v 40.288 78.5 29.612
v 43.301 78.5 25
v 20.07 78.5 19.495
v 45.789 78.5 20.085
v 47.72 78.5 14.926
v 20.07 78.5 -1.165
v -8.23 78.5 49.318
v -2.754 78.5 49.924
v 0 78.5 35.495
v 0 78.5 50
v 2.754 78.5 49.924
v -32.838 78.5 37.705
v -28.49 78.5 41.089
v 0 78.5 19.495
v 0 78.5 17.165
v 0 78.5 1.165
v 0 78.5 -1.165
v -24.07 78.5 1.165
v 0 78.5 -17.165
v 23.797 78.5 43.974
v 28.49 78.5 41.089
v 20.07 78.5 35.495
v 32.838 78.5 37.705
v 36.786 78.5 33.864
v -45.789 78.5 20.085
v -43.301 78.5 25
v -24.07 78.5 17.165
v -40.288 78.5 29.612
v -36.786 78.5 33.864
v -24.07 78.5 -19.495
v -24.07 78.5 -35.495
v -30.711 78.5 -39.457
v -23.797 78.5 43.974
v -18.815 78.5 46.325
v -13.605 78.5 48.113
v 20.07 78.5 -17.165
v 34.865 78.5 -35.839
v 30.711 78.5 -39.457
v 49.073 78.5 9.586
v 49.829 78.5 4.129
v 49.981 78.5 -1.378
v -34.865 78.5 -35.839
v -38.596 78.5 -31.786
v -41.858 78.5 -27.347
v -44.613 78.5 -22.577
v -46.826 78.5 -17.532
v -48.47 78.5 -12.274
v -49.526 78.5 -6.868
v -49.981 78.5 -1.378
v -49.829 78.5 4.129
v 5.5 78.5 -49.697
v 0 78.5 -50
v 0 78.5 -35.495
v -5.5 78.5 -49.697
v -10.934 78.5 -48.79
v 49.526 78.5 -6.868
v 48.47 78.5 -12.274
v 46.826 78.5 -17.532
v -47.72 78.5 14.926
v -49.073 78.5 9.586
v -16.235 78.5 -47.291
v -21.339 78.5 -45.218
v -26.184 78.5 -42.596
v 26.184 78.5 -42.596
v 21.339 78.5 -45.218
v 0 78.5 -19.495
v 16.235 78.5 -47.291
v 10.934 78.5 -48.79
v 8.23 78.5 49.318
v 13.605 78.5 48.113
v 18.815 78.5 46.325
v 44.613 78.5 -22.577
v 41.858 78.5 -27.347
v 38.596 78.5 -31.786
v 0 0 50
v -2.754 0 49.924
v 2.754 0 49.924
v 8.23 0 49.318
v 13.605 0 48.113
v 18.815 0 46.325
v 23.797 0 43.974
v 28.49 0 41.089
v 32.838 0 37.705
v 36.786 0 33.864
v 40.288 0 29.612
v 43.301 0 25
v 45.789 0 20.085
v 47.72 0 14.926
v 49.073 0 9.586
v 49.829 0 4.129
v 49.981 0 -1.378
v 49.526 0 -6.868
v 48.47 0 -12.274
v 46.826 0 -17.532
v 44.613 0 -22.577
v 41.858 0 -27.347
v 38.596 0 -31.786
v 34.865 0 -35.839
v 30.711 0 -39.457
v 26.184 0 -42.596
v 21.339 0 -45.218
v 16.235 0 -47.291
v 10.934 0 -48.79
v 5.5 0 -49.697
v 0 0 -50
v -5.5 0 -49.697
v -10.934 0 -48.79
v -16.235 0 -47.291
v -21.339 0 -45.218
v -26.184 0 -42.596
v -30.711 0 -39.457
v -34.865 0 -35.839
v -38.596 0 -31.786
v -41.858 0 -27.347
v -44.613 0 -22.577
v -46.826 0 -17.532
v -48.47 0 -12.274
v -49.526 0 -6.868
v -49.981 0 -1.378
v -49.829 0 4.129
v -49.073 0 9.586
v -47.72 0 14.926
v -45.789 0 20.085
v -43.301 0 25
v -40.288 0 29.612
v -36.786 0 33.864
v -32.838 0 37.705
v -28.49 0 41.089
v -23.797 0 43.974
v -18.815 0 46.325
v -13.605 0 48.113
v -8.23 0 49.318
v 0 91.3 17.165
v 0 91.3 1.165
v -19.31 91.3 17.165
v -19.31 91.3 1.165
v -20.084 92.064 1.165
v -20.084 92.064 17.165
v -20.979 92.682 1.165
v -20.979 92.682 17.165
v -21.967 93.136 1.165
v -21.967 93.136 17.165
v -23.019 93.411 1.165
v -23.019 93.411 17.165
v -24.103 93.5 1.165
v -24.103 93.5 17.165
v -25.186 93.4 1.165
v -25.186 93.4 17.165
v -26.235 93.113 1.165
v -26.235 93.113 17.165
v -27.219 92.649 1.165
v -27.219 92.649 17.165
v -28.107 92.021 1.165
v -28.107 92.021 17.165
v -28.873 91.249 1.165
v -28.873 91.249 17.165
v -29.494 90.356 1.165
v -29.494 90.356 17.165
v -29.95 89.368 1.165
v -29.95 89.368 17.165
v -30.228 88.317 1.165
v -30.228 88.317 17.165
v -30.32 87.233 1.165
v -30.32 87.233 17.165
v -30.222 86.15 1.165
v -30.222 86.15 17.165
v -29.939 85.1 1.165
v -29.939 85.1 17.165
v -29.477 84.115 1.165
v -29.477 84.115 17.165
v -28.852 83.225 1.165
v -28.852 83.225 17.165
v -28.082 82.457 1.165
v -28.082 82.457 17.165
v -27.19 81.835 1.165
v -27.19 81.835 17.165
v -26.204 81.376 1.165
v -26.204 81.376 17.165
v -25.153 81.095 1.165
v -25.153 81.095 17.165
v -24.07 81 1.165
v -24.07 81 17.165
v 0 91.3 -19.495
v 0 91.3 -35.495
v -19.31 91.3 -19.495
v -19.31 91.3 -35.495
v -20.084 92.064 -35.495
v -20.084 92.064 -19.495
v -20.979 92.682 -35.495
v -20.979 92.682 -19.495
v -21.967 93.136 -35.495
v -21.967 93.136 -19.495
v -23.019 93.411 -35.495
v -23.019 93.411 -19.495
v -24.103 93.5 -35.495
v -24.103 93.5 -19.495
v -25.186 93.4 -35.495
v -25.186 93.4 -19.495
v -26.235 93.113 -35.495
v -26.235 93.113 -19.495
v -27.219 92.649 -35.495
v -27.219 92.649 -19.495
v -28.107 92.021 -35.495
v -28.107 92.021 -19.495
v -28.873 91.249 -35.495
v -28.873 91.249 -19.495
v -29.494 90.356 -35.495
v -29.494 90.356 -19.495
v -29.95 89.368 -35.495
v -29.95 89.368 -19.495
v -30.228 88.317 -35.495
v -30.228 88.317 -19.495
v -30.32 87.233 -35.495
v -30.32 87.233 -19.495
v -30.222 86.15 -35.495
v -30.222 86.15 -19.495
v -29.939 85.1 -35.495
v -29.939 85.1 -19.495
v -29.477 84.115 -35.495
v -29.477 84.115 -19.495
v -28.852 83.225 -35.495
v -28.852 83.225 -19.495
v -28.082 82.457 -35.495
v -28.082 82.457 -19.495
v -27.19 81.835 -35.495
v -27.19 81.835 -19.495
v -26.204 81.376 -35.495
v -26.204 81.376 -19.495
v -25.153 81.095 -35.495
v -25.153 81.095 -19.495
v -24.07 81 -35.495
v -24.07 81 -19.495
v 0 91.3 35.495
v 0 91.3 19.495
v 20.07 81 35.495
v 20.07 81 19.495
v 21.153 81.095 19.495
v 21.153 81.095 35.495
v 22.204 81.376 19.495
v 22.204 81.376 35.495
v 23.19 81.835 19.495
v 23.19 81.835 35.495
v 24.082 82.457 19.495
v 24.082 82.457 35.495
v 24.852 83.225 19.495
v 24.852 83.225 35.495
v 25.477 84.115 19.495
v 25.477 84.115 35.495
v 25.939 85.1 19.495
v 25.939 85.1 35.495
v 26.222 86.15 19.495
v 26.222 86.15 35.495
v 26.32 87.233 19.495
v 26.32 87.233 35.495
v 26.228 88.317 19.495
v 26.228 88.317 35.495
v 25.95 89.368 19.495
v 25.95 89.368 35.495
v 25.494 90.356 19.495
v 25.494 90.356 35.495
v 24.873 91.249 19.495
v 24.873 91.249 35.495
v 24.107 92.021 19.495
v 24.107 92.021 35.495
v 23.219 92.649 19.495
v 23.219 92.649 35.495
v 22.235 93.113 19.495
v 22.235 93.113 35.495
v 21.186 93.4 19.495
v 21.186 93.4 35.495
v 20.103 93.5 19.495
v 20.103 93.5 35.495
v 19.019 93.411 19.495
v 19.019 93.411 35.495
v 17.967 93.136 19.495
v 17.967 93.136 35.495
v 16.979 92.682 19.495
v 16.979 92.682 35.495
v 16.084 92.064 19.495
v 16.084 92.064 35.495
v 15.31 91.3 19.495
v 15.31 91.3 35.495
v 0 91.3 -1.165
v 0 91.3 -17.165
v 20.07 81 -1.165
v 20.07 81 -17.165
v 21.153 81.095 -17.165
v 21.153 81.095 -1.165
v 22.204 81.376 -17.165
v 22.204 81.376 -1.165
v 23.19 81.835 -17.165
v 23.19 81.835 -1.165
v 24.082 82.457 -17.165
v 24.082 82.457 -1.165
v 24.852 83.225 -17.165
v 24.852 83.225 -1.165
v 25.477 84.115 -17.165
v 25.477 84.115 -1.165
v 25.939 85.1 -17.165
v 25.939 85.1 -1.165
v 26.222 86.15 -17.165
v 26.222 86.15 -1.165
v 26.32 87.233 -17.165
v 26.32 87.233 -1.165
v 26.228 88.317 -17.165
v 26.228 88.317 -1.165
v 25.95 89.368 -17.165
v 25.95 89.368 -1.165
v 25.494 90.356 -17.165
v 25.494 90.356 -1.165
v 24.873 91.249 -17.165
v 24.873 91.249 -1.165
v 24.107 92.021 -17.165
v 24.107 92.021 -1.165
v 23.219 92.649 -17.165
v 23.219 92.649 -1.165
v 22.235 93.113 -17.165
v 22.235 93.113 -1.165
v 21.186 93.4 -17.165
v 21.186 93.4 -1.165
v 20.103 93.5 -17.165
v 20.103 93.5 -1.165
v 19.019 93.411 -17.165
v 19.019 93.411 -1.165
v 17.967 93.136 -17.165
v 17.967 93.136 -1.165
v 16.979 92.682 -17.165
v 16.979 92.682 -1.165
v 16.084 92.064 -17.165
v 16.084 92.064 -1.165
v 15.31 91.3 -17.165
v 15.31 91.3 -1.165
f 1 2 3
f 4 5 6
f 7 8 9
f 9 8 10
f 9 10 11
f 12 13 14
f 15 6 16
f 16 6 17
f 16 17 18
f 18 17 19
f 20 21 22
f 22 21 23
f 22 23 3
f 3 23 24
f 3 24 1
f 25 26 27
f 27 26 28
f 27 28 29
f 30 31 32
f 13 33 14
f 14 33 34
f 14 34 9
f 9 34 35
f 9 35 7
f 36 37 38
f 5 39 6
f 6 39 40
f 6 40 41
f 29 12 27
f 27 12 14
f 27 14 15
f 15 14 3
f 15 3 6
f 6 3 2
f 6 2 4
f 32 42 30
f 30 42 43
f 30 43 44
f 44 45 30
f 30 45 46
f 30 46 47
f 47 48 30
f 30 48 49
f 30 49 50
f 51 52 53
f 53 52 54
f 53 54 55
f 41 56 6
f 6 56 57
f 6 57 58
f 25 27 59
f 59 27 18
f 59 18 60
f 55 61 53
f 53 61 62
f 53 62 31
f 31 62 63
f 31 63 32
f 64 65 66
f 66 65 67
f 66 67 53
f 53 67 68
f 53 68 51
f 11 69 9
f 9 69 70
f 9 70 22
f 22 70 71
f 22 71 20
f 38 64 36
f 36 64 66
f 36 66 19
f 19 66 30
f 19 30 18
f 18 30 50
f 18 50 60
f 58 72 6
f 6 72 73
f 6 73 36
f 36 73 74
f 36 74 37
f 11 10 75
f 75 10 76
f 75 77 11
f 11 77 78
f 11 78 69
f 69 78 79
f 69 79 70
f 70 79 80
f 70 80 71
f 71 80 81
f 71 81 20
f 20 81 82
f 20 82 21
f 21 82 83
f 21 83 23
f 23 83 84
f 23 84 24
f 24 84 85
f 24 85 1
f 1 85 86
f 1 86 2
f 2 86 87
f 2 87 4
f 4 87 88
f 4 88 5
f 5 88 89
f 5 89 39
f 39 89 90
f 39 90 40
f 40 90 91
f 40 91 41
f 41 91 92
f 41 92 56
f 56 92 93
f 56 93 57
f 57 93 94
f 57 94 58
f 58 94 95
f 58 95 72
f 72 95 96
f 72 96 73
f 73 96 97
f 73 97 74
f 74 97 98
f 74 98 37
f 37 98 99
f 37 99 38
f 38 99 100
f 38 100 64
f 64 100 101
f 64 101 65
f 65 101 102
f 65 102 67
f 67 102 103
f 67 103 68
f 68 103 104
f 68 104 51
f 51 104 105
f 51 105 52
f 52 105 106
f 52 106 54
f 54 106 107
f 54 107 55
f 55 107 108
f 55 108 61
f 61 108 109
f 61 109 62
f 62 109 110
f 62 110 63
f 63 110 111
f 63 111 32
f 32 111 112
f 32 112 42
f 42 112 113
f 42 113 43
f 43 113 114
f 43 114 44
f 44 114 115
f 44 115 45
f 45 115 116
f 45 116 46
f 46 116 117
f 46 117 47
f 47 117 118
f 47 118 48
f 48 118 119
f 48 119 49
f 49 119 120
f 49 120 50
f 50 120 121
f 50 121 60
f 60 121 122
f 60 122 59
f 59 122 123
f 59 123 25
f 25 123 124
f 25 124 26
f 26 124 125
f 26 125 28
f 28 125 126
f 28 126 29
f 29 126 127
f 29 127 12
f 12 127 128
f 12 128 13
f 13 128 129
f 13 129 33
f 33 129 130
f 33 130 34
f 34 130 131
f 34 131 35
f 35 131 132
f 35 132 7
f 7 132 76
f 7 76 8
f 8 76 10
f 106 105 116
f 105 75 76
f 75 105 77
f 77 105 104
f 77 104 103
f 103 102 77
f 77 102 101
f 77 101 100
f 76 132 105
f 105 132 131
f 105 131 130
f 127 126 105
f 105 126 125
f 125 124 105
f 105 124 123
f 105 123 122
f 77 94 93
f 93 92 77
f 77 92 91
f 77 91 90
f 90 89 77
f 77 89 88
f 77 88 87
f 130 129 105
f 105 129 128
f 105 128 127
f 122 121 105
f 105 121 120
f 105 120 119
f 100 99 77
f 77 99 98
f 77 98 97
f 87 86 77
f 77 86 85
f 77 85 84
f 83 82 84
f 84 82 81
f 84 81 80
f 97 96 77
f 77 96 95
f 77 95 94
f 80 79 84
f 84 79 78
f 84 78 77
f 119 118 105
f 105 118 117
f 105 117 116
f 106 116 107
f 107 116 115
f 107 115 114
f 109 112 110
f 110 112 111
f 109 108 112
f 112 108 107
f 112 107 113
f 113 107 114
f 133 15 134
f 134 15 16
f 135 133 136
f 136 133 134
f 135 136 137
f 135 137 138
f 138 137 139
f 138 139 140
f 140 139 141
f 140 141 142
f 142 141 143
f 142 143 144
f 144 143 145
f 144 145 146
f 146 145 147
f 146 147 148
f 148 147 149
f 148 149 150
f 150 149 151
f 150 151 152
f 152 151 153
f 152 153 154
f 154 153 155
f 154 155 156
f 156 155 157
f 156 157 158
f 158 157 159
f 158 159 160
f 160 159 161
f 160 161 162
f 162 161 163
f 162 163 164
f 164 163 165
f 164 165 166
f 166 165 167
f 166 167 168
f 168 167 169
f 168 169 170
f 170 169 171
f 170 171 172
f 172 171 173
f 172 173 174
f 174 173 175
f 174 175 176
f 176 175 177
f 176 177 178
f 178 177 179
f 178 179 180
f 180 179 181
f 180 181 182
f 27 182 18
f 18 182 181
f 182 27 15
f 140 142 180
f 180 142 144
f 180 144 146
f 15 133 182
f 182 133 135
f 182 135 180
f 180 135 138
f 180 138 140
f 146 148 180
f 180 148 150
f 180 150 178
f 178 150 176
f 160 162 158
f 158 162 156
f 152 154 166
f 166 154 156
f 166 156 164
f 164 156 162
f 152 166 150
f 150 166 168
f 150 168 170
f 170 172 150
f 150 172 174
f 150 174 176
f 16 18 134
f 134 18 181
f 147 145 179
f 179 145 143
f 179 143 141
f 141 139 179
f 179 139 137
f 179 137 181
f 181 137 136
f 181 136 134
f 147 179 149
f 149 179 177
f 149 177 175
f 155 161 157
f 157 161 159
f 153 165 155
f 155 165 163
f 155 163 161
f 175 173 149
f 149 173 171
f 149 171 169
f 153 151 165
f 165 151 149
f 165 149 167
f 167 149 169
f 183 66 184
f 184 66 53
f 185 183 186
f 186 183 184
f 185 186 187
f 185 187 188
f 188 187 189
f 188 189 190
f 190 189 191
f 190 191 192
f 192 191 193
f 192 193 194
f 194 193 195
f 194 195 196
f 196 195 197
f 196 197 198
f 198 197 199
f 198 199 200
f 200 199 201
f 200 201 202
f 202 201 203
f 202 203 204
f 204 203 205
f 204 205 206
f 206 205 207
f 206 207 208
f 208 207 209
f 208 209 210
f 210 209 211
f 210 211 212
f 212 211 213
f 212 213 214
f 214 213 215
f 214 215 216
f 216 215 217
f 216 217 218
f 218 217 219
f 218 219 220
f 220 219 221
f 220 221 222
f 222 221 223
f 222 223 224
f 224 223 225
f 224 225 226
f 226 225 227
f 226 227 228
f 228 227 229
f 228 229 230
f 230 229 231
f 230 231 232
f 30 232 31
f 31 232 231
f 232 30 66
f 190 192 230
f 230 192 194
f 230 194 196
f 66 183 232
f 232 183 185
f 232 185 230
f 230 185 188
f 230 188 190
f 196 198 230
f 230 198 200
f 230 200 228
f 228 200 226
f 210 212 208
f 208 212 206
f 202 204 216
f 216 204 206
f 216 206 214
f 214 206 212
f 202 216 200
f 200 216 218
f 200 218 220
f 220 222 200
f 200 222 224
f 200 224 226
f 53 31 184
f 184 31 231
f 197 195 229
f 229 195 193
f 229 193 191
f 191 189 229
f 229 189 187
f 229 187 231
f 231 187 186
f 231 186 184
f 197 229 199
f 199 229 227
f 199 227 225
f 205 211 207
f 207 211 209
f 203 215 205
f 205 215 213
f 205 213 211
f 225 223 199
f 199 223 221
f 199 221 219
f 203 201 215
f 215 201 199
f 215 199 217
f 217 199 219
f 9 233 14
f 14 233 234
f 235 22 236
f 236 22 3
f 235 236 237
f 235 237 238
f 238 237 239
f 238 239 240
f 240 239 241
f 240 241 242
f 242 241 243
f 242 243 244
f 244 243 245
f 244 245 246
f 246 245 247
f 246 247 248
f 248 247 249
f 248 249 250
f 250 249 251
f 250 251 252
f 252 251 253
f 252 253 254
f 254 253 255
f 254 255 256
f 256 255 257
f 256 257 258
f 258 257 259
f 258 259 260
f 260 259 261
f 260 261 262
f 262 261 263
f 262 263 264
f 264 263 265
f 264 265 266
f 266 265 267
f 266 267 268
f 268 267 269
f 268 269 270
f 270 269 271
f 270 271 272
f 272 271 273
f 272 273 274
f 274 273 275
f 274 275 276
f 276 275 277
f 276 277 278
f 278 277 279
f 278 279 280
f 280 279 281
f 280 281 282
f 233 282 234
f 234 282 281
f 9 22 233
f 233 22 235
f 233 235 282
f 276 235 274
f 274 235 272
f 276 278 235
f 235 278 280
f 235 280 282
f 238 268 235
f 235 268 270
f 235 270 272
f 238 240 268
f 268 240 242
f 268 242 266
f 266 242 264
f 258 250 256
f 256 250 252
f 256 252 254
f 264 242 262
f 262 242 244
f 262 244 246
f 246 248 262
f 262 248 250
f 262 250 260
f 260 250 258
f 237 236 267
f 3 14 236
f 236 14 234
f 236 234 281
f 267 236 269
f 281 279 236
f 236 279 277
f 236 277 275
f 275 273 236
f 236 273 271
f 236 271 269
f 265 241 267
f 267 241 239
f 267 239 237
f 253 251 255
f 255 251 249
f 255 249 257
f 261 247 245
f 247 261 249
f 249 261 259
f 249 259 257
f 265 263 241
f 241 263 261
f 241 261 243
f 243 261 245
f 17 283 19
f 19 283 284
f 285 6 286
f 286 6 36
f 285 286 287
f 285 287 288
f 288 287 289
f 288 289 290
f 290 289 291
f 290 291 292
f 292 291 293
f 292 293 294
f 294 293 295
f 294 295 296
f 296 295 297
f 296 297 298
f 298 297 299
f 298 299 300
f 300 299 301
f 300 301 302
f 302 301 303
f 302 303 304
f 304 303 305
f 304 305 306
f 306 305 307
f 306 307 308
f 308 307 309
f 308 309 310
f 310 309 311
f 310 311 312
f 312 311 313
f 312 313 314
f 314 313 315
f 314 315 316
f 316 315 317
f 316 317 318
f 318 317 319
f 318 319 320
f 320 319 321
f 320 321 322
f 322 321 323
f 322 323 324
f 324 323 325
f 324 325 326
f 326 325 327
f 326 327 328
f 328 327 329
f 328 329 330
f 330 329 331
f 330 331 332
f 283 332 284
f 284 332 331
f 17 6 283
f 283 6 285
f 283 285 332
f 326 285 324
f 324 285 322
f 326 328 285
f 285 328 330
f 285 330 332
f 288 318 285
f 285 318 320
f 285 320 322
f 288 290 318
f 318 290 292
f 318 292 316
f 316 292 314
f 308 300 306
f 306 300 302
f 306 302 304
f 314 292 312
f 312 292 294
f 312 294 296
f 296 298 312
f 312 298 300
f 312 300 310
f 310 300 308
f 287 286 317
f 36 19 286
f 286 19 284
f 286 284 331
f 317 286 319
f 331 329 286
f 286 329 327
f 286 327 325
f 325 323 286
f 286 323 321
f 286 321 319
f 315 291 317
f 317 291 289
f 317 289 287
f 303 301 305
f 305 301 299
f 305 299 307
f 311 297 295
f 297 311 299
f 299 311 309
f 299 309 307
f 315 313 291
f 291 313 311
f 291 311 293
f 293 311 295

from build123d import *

# Parameters (mm, degrees)
SKETCH1_R           = 50
BOSS_EXTRUDE1_DEPTH = 78.5
BOSS_EXTRUDE2_DEPTH = 8
LPATTERN1_COUNT     = 2
LPATTERN1_PITCH     = 36.66
BOSS_EXTRUDE3_DEPTH = 8
LPATTERN2_COUNT     = 2
LPATTERN2_PITCH     = 36.66


with BuildPart() as part:
    # Sketch1 → Boss-Extrude1 (new body)
    with BuildSketch(Plane(origin=(0, 0, 0), x_dir=(1, 0, 0), z_dir=(0, 1, 0))):
        Circle(SKETCH1_R)
    extrude(amount=BOSS_EXTRUDE1_DEPTH)

    # Sketch2 → Boss-Extrude2 (add, symmetric)
    with BuildSketch(Plane.XY.offset(9.165)):
        with BuildLine():
            Line((0, 78.5), (-24.07, 78.5))
            Line((-24.07, 78.5), (-24.07, 81))
            ThreePointArc((-24.07, 81), (-29.743402859, 89.87202212), (-19.309747906, 91.3))
            Line((-19.309747906, 91.3), (0, 91.3))
            Line((0, 91.3), (0, 78.5))
        make_face()
    boss_extrude2 = extrude(amount=BOSS_EXTRUDE2_DEPTH, both=True)

    # LPattern1: Boss-Extrude2 ×2
    with Locations(*[(0, 0, -i * LPATTERN1_PITCH) for i in range(1, LPATTERN1_COUNT)]):
        add(boss_extrude2)

    # Sketch3 → Boss-Extrude3 (add, symmetric)
    with BuildSketch(Plane.XY.offset(27.495)):
        with BuildLine():
            Line((0, 91.3), (15.309747906, 91.3))
            ThreePointArc((15.309747906, 91.3), (25.743402859, 89.87202212), (20.07, 81))
            Line((20.07, 81), (20.07, 78.5))
            Line((20.07, 78.5), (0, 78.5))
            Line((0, 78.5), (0, 91.3))
        make_face()
    boss_extrude3 = extrude(amount=BOSS_EXTRUDE3_DEPTH, both=True)

    # LPattern2: Boss-Extrude3 ×2
    with Locations(*[(0, 0, -i * LPATTERN2_PITCH) for i in range(1, LPATTERN2_COUNT)]):
        add(boss_extrude3)


solid = part.part
